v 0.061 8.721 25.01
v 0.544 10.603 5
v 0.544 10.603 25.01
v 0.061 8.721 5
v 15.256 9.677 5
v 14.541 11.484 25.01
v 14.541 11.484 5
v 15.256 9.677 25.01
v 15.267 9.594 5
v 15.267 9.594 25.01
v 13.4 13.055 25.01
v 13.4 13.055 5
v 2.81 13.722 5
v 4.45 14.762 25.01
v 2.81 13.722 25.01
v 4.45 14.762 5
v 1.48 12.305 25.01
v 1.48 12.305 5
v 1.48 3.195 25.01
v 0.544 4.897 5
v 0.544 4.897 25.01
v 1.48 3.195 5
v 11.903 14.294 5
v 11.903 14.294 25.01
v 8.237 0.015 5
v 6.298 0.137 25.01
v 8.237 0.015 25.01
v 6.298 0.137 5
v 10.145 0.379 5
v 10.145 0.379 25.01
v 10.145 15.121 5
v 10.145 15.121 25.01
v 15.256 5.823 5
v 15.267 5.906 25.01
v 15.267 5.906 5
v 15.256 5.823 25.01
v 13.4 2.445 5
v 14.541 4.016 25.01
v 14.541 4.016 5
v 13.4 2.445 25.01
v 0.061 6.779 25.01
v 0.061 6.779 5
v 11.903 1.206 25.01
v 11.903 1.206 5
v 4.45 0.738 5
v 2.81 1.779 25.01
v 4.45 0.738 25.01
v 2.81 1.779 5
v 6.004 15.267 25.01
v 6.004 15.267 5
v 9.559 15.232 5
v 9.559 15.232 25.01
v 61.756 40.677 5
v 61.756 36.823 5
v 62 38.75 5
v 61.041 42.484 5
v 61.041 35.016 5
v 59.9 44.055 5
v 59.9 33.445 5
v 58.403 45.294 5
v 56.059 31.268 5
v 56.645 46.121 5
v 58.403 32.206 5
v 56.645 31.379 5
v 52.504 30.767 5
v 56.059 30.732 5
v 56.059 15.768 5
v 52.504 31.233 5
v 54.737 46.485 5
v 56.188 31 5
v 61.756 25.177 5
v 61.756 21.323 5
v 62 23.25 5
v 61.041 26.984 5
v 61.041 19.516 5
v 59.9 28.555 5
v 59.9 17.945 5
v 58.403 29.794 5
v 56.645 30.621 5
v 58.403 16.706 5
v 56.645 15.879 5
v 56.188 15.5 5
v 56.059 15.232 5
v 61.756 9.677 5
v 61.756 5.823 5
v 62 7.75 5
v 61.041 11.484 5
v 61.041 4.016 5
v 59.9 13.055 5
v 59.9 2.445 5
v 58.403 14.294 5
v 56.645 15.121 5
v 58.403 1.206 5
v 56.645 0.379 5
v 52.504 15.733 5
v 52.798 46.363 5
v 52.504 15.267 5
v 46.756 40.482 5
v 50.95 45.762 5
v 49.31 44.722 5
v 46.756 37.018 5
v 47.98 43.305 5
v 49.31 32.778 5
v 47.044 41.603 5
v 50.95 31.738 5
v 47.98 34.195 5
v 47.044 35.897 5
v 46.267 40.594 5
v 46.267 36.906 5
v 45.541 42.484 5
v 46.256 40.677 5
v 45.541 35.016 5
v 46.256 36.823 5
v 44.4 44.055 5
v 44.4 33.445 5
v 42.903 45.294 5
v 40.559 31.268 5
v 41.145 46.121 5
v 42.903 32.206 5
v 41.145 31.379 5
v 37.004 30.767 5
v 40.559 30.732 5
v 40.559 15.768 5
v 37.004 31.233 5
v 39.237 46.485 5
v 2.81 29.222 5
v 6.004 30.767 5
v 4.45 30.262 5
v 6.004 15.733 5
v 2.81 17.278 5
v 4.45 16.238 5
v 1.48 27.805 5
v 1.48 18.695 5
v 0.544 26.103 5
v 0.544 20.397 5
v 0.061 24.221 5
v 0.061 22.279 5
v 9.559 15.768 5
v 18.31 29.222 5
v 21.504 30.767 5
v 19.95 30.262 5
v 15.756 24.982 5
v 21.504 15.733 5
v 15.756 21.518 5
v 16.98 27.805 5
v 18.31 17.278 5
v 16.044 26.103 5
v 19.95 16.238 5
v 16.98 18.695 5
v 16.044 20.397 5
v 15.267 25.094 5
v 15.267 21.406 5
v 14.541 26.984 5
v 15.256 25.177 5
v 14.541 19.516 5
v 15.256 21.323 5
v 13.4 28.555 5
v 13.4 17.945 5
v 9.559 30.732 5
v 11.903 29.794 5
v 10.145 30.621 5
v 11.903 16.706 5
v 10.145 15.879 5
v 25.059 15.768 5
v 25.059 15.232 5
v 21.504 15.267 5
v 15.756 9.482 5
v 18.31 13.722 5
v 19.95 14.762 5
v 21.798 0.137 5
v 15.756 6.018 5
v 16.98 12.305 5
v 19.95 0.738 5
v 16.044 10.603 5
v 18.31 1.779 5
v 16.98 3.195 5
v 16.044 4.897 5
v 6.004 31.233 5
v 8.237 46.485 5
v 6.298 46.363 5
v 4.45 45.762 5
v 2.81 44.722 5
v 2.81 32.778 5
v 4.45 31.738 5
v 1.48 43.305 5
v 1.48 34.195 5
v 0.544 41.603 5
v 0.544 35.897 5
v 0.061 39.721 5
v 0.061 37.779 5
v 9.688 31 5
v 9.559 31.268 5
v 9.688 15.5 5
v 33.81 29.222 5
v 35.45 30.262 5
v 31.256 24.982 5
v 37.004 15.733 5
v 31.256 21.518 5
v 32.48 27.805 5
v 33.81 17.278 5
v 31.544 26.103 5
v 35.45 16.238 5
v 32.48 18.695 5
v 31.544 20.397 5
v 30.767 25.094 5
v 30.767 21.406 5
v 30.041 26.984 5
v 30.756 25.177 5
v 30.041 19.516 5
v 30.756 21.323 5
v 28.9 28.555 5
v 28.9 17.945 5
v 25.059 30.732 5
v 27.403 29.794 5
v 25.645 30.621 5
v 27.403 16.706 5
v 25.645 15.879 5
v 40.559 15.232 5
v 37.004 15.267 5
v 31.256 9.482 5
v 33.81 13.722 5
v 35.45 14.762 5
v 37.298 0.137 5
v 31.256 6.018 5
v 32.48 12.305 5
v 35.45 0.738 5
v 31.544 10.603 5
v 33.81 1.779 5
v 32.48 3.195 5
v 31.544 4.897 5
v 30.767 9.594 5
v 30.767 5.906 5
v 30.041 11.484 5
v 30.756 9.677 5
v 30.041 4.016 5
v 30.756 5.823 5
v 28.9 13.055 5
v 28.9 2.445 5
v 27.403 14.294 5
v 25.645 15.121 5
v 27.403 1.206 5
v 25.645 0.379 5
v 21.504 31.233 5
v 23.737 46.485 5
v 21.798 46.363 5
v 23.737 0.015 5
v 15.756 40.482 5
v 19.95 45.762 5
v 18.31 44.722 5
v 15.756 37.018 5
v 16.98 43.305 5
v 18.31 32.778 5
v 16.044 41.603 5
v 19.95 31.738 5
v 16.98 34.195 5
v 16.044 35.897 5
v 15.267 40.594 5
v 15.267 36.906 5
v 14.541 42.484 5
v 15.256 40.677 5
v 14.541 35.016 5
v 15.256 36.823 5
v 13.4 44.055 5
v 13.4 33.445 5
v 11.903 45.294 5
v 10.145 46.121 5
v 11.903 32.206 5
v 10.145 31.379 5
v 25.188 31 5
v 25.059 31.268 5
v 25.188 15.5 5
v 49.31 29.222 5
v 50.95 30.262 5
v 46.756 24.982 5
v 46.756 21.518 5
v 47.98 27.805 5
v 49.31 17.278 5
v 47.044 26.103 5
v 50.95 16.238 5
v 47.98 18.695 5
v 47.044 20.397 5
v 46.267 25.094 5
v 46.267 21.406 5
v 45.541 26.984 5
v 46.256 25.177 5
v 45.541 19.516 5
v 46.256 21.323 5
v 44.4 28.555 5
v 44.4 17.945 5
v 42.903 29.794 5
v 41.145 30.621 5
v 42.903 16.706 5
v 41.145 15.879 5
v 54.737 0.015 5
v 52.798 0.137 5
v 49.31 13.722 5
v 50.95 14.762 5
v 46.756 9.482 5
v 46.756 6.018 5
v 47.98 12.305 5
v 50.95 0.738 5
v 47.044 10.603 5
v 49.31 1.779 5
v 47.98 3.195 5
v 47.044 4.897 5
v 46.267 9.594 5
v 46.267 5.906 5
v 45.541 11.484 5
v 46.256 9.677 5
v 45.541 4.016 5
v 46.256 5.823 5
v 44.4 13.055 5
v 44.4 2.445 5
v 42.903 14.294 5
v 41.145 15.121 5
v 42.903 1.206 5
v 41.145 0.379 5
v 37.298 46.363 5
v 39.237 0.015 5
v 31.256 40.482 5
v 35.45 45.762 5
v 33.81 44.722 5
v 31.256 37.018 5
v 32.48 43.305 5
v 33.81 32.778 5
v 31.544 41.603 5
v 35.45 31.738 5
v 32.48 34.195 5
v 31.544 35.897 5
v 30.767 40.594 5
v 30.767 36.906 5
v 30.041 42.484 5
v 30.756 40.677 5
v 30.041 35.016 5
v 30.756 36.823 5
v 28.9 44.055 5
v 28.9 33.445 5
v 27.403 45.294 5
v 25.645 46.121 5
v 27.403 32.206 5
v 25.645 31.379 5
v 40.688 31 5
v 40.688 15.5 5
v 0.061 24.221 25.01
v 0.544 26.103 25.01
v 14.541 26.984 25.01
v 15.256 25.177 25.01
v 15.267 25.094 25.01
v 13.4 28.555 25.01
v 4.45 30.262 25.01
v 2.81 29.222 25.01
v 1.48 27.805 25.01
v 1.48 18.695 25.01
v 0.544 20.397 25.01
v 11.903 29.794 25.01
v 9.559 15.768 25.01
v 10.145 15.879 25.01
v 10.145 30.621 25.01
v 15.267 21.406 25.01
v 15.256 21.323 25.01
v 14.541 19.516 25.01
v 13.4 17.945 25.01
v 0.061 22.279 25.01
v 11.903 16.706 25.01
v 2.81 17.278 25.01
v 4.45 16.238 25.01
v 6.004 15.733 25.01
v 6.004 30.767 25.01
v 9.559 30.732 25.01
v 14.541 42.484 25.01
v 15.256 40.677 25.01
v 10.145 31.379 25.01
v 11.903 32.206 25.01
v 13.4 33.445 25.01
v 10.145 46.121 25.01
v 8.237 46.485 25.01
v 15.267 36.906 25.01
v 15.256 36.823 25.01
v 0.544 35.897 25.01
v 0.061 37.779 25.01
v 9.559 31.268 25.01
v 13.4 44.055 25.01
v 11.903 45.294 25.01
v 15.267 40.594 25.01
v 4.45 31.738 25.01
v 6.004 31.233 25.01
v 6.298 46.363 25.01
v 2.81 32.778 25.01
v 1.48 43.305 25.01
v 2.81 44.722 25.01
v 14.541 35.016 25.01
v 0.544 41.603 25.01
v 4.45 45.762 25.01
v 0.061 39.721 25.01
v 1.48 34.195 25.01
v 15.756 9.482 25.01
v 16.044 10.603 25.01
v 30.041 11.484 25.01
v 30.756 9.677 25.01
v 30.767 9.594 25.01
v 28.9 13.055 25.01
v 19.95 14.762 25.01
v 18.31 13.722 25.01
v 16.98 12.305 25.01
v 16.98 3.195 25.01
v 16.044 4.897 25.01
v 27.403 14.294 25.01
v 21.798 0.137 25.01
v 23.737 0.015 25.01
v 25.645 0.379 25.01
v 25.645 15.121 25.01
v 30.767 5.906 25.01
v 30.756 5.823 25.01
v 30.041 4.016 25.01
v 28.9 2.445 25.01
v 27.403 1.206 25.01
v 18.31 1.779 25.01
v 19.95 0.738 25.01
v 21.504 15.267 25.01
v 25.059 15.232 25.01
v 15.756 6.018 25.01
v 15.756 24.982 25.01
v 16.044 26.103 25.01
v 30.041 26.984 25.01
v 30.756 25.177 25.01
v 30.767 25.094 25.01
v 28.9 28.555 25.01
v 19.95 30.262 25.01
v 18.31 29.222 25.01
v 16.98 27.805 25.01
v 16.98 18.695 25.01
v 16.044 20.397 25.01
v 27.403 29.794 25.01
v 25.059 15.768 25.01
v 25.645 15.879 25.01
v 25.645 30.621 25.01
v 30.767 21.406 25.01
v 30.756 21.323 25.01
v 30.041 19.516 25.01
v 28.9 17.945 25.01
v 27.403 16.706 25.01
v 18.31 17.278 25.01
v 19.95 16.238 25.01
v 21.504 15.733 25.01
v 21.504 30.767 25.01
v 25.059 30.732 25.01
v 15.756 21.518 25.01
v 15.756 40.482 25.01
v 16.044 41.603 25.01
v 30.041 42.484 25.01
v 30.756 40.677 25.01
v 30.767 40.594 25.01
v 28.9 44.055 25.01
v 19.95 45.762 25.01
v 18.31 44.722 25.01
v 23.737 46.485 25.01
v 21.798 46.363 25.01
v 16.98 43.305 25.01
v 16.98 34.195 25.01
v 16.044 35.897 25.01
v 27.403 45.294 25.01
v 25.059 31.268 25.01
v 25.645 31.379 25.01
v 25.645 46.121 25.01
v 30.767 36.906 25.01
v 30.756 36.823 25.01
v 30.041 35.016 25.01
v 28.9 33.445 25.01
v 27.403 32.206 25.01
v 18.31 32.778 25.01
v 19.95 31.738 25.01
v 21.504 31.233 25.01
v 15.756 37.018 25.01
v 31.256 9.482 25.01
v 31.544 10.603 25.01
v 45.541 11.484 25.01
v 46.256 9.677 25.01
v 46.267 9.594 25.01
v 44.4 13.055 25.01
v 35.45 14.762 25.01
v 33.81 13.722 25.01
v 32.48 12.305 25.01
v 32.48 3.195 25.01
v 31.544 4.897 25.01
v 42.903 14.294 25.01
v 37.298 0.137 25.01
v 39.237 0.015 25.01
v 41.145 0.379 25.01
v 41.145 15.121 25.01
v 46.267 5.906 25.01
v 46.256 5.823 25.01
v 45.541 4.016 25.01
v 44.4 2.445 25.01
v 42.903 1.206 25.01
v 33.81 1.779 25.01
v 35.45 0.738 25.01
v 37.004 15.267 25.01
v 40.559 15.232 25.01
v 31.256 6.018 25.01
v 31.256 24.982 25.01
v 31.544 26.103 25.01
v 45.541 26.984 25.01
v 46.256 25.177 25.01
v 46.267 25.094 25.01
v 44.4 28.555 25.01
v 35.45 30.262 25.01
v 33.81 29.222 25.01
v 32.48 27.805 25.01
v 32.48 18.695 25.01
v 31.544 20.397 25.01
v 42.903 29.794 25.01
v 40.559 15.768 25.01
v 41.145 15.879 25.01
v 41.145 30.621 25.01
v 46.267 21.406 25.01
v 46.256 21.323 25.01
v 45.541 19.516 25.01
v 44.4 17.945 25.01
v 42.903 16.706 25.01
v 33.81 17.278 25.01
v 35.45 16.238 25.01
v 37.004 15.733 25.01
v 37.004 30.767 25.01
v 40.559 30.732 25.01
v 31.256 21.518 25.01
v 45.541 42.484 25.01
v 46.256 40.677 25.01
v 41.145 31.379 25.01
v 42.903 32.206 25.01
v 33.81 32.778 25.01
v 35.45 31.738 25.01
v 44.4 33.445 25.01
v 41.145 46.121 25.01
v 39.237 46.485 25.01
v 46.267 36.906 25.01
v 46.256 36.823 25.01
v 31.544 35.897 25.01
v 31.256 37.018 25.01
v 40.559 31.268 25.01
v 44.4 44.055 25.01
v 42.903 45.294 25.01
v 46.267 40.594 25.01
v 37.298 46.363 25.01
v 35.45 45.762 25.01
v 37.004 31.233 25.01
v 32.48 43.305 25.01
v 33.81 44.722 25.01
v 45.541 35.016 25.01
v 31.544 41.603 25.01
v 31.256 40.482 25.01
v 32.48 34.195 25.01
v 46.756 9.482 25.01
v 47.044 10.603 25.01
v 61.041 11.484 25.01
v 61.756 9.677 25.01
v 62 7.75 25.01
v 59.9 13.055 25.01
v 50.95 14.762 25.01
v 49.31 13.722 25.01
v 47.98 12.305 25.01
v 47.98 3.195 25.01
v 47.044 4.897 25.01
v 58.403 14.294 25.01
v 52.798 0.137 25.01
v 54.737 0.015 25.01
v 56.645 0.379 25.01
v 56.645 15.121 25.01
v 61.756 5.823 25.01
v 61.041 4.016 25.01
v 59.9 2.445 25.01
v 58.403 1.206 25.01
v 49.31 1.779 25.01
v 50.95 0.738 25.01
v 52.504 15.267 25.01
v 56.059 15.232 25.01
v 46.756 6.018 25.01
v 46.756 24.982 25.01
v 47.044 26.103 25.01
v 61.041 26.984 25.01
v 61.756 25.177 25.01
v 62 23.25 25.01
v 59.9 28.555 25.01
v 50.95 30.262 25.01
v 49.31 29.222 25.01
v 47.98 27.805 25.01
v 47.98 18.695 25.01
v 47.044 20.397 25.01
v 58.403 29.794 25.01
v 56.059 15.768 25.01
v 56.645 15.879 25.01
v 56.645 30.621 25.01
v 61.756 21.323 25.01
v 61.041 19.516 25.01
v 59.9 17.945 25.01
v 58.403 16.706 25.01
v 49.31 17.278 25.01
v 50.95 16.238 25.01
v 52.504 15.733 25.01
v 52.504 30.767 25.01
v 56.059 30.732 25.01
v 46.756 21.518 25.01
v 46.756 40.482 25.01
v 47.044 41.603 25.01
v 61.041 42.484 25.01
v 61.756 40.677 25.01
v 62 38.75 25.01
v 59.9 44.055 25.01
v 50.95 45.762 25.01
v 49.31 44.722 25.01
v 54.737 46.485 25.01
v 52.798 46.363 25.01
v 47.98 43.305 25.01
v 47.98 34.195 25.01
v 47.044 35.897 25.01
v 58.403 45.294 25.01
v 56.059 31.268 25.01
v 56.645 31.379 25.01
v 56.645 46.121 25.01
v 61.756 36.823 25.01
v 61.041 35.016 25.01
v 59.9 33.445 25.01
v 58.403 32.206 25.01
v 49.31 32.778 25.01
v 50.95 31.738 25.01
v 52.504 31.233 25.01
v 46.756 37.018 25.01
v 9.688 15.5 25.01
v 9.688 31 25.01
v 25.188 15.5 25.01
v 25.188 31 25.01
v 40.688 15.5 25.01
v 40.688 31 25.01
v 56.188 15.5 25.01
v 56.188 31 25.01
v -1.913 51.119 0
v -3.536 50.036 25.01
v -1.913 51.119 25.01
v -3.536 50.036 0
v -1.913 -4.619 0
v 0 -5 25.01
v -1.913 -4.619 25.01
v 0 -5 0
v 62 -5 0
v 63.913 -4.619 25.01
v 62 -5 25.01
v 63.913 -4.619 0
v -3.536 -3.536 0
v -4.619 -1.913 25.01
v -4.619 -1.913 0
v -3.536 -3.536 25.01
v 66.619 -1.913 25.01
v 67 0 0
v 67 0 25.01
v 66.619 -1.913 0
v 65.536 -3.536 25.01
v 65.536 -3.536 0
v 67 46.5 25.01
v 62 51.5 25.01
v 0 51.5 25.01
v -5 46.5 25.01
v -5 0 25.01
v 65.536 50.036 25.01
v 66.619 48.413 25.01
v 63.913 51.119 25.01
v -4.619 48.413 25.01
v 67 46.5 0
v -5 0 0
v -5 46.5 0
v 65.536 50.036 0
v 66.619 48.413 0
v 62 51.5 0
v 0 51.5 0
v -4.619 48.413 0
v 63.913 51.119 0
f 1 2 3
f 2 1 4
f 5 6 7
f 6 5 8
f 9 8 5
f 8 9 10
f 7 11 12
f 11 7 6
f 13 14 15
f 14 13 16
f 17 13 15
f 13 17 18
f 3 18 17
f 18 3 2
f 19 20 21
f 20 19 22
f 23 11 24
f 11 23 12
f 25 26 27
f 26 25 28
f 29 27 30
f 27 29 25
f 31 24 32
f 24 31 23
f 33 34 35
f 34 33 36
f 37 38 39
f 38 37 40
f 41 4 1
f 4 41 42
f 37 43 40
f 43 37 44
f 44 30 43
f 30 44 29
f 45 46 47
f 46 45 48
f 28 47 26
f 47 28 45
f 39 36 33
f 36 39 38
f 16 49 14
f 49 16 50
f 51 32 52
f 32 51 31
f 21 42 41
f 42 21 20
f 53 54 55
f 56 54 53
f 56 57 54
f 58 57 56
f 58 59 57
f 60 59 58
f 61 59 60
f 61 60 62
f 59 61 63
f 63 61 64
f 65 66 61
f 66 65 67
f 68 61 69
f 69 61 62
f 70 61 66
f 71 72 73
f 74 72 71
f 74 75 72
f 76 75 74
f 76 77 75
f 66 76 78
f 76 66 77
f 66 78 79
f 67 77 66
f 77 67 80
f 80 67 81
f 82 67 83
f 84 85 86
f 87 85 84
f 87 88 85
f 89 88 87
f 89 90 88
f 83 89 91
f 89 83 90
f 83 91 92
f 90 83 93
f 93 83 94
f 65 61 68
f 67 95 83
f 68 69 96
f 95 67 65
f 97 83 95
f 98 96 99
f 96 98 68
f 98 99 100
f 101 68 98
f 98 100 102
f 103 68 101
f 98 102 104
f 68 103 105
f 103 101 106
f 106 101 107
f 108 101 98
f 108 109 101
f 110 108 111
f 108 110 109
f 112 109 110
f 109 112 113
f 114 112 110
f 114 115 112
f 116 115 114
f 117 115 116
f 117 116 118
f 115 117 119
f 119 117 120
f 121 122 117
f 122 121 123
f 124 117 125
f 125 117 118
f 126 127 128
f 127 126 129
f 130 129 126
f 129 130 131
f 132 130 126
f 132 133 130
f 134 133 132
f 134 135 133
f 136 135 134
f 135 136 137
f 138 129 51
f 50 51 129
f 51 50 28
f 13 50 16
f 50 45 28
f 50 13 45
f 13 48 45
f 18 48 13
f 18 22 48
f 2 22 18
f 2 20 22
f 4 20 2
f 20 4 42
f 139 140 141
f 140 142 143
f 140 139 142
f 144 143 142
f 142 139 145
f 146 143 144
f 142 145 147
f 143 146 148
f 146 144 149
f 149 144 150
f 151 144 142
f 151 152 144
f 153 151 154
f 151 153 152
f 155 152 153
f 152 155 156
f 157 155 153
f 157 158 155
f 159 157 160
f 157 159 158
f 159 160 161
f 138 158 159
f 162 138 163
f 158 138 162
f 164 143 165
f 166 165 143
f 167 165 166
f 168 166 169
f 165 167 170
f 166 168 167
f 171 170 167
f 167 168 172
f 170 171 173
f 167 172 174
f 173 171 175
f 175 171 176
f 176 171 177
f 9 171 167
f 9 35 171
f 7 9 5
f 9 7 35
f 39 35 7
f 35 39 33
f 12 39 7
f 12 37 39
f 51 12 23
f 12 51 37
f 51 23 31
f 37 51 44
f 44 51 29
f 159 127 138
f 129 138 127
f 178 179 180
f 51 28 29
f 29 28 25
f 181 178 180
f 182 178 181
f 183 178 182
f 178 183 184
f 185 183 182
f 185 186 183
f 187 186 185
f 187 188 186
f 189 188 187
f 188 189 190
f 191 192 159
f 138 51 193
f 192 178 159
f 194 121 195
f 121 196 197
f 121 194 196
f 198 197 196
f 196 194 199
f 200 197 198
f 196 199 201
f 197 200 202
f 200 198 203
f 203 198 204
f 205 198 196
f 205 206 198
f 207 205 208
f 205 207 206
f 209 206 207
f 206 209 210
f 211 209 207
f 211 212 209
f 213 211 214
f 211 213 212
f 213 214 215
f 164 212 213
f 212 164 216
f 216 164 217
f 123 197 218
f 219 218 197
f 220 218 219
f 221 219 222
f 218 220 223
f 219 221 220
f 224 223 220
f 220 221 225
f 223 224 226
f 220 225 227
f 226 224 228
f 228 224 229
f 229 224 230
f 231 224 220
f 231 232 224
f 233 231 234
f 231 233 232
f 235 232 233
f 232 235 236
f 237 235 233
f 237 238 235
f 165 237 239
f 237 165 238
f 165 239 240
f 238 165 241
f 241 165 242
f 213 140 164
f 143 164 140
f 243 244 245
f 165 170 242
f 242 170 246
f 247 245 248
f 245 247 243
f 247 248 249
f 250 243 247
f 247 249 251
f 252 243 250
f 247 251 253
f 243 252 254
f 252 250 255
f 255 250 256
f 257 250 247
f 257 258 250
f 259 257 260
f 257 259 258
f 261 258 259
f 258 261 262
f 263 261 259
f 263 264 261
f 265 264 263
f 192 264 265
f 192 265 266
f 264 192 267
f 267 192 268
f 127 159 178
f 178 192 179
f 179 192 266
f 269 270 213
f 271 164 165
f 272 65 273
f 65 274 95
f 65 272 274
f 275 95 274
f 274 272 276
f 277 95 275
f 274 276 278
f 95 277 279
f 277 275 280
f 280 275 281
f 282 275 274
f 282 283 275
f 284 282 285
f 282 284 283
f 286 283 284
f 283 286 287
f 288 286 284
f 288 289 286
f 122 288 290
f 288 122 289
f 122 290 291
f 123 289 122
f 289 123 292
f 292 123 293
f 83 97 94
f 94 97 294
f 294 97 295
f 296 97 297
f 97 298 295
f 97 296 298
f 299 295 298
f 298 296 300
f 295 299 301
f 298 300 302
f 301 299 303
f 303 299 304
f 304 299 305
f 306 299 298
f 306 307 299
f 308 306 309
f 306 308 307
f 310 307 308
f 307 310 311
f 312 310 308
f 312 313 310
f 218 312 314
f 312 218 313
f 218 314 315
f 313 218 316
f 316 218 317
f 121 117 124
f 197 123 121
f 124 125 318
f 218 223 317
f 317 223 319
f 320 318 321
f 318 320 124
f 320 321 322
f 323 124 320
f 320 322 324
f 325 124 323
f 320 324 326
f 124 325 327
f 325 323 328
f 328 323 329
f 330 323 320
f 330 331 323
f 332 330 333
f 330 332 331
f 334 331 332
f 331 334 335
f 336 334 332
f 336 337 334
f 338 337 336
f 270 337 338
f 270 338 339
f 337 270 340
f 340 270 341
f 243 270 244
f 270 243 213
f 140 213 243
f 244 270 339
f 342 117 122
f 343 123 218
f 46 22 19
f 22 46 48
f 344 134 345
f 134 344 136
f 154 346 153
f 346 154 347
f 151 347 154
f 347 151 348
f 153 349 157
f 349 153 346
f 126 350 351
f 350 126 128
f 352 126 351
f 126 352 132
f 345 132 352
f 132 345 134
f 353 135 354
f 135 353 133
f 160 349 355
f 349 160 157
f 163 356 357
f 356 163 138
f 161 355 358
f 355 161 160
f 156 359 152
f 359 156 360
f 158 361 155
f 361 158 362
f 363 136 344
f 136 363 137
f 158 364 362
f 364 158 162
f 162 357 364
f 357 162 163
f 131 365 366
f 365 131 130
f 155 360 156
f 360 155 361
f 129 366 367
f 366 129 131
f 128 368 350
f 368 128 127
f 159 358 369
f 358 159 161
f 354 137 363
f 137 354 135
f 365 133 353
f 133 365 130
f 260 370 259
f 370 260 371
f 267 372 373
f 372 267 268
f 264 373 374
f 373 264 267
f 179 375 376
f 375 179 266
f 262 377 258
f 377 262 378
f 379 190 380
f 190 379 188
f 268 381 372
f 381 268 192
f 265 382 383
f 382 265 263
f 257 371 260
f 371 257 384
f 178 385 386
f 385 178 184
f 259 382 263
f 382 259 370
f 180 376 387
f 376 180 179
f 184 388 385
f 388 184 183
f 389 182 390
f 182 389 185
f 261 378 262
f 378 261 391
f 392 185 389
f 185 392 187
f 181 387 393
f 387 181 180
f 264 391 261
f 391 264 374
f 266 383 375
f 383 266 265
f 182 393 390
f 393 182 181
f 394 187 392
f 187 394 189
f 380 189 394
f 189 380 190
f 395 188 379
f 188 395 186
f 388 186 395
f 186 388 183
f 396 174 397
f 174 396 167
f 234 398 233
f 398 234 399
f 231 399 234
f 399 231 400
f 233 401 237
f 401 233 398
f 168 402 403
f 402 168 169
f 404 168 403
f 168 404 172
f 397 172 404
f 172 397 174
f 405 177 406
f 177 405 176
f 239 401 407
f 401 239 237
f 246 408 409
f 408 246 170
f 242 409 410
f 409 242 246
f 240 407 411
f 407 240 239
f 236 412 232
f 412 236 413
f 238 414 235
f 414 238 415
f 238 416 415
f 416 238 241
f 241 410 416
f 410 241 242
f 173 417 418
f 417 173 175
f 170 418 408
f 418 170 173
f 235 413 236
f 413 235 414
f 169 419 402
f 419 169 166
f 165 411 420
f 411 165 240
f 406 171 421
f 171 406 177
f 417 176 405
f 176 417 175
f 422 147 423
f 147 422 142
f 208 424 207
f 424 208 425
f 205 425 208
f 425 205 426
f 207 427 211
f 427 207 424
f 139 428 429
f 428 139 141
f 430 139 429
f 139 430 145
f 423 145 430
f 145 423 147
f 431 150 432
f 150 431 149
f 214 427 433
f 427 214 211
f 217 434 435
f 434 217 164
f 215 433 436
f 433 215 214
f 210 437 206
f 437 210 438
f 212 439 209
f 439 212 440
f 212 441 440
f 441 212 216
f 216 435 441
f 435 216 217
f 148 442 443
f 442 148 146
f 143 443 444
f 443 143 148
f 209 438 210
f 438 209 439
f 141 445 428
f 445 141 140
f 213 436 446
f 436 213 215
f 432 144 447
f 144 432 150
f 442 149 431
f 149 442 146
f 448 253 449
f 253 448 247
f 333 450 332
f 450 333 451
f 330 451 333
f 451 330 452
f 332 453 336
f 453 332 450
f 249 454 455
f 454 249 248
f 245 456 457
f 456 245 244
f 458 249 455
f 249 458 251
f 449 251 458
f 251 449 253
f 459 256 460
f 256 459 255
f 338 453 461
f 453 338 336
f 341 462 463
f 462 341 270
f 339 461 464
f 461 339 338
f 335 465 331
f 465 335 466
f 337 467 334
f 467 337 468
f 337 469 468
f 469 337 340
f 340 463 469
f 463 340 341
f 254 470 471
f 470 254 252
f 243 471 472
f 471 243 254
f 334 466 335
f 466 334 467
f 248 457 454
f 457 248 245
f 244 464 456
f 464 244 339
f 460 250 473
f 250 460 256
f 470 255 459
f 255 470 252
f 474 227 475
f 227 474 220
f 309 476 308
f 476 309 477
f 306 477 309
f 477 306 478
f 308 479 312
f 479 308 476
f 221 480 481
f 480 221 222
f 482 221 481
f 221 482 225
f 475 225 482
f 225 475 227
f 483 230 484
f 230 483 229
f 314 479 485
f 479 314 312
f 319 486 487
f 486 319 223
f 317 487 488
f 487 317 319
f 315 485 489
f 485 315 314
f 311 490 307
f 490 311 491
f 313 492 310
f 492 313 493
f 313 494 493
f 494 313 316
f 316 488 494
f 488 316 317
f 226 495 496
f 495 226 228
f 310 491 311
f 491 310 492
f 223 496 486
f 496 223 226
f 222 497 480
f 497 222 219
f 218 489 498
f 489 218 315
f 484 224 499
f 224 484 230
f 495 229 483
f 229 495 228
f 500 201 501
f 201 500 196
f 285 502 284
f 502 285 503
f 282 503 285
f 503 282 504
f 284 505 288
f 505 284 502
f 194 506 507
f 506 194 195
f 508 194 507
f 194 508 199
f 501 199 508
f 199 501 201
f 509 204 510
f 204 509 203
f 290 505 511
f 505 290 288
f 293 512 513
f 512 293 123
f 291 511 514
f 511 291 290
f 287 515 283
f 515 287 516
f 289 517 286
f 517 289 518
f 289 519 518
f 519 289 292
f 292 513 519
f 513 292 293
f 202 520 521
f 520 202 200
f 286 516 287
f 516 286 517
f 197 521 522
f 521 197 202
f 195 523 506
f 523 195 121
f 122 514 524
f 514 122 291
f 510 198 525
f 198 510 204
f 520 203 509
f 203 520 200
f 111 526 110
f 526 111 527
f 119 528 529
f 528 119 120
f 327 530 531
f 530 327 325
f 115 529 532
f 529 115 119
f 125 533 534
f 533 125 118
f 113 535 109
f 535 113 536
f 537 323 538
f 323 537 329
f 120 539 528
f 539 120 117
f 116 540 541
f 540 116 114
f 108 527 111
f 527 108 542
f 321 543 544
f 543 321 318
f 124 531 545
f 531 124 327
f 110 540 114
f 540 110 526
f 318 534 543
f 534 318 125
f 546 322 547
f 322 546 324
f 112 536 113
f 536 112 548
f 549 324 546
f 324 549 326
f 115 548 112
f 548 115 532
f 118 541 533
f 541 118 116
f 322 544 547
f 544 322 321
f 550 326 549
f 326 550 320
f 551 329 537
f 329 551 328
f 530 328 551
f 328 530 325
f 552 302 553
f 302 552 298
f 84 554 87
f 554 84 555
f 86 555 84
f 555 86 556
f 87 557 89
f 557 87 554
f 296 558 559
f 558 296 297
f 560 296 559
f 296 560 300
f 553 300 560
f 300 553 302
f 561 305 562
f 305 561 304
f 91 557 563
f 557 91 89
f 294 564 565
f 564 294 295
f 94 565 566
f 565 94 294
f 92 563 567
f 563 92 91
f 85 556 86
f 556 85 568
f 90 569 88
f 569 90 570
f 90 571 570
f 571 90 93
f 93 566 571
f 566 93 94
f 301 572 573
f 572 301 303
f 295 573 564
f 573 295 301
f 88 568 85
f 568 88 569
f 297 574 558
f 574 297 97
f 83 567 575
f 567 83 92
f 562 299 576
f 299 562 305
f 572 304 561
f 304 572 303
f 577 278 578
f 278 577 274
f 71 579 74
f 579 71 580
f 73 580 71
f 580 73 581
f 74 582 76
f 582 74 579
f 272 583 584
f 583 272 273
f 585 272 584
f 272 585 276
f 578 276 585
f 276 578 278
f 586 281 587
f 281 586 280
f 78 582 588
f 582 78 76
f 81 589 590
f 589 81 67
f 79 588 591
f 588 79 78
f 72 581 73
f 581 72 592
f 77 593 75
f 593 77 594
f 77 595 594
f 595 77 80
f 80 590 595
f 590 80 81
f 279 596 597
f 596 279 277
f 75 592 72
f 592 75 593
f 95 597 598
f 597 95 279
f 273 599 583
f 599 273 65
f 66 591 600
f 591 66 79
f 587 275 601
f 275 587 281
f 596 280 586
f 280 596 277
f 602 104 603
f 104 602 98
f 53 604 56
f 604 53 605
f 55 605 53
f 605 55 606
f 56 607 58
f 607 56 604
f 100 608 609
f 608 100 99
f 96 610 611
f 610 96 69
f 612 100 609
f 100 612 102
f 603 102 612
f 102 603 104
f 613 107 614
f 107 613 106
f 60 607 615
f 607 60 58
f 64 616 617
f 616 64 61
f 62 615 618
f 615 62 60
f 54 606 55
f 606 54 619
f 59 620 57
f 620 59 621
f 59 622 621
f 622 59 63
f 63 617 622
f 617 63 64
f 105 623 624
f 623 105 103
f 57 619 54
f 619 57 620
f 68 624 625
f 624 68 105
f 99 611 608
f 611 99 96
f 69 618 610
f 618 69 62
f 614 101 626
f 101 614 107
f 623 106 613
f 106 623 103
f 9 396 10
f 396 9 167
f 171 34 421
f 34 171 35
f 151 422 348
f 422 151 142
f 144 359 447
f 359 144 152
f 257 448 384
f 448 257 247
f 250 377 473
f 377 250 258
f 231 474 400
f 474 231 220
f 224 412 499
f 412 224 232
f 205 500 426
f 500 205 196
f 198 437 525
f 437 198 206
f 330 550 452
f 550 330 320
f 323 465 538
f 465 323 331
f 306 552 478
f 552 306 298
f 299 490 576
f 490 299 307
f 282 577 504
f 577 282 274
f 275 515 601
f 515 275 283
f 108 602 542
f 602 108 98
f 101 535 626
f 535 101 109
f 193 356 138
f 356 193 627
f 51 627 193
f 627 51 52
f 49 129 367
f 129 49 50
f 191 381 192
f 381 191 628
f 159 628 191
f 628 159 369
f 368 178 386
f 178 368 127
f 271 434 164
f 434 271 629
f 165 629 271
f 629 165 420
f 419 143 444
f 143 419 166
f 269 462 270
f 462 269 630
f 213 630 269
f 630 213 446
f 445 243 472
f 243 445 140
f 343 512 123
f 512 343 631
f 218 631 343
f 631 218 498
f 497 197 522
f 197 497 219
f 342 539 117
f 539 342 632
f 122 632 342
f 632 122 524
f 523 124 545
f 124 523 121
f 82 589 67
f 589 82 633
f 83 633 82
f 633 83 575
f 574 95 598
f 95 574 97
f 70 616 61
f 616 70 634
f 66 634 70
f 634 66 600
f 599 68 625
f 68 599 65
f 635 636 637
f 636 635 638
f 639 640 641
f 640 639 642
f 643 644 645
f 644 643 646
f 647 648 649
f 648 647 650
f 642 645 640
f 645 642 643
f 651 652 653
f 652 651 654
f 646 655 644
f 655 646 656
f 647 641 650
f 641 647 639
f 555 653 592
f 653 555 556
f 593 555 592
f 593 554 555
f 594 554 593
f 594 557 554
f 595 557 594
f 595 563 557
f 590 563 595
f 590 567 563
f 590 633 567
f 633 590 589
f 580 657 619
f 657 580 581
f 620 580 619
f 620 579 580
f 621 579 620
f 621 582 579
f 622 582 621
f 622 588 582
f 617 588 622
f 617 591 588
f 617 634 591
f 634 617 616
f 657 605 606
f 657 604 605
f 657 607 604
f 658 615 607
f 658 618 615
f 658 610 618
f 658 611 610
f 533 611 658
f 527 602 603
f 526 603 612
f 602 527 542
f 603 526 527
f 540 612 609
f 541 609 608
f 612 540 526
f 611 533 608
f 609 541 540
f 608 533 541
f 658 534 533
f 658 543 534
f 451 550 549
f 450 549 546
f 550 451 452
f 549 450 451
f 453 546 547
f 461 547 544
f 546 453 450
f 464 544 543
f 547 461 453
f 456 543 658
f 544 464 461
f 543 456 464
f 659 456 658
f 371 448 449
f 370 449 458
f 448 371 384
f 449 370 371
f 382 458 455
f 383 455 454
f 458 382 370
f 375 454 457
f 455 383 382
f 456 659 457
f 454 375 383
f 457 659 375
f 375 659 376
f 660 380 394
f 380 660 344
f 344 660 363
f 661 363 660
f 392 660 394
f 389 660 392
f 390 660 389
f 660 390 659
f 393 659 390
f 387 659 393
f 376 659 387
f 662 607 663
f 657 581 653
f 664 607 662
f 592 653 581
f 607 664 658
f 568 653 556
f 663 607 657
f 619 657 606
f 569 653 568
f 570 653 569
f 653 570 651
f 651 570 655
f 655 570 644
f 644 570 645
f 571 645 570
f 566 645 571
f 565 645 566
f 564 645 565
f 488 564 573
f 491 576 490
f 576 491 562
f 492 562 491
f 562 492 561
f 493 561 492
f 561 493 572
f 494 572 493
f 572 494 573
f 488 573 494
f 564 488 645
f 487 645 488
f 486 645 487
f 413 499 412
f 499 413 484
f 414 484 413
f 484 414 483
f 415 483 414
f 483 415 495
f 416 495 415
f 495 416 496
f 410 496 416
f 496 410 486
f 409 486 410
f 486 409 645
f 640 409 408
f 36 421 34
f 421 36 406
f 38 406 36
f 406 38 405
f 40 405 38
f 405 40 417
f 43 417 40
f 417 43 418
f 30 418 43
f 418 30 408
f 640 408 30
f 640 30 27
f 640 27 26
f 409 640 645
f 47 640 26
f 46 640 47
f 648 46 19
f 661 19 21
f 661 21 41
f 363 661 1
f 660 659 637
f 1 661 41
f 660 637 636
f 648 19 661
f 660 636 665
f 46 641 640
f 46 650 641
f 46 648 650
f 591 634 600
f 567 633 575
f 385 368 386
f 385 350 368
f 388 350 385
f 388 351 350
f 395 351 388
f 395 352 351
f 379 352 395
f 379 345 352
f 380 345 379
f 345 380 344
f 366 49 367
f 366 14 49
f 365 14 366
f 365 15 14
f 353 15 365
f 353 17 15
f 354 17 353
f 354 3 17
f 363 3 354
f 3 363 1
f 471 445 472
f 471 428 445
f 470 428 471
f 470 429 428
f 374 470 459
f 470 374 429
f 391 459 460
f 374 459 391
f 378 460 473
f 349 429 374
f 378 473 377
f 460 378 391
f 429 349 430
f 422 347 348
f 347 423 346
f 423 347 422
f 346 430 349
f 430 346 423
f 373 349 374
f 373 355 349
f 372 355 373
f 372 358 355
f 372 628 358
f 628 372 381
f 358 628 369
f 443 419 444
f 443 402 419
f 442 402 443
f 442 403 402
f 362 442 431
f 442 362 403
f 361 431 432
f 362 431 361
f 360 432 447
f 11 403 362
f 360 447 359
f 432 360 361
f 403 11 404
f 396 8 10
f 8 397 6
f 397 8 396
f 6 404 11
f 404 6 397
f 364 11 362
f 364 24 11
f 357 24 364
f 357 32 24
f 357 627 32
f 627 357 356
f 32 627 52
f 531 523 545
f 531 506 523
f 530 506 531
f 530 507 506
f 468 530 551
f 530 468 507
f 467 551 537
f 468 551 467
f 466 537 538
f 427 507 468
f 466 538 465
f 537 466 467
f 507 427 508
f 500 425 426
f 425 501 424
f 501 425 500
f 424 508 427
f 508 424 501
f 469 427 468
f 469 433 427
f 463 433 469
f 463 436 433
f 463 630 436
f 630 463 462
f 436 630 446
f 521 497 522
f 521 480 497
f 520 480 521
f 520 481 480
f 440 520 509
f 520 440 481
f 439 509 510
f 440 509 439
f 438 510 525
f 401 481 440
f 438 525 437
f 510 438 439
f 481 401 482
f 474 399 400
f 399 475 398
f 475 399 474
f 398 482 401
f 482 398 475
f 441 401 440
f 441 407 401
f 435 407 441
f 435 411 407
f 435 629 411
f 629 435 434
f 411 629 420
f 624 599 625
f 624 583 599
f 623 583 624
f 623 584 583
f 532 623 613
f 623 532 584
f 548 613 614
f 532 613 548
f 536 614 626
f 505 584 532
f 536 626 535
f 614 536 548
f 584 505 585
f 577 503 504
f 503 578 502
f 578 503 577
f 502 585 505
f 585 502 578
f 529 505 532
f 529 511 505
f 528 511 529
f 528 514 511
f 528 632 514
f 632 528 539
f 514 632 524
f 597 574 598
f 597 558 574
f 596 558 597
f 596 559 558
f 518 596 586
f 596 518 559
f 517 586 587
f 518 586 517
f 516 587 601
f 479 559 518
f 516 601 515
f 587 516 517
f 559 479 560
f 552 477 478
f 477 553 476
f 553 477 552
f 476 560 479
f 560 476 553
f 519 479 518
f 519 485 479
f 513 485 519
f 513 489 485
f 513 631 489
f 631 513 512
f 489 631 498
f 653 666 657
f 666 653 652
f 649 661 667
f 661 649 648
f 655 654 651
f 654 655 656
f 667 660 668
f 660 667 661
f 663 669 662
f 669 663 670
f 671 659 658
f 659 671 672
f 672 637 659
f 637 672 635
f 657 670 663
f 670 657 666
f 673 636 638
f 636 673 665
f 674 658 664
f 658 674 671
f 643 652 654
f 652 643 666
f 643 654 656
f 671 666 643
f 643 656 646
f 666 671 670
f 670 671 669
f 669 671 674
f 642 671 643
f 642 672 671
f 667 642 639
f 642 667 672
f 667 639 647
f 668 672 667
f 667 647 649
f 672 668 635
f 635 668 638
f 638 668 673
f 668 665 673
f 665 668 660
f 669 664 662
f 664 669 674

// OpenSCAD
/*
 * Customizable Battery Storage Tray
 * Copyright (c) 2013-2019 Anar Software LLC. < http://anars.com >
 *
 * This program is free software: you can redistribute it and/or modify it under
 * the terms of the GNU General Public License as published by the Free Software
 * Foundation, either version 3 of the License, or (at your option) any later
 * version.
 *
 * This program is distributed in the hope that it will be useful, but WITHOUT
 * ANY WARRANTY; without even the implied warranty of MERCHANTABILITY or FITNESS
 * FOR A PARTICULAR PURPOSE. See the GNU General Public License for more details.
 *
 * You should have received a copy of the GNU General Public License along with
 * this program. If not, see < http://www.gnu.org/licenses/ >
 *
 */

/* [Global] */

/* [Tray Settings] */
// Battery Type
battery_type = "AA"; // [AAA, AA, C, D, 1/2AA, AAAA, A, B, F, N, NO. 6, SUB-C, A23, A27, DUPLEX, 4SR44, 523, 531, CR123A, CR2]

// Depth of a battery hole (mm)
depth_of_hole = 20;

// Thickness of the bottom (mm)
thickness_of_bottom = 5;

// Number of batteries in a row
number_of_rows = 3;

// Number of batteries in a column
number_of_column = 4;

// Thickness of the edges (mm)
thickness_of_edges = 5;

// Enlarge battery hole by (mm)
hole_enlargement_amount = 1;

/* [Facets Settings] */
// Minimum angle for a fragment
$fa = 12;
// Minimum size of a fragment
$fs = 2;
// Number of fragments
$fn = 0;

/* [Hidden] */
batteries =
[
	["AAA", 10.5],
	["AA", 14.5],
	["C", 26.2],
	["D", 34.2],
	["1/2AA", 14.5],
	["AAAA", 8.3],
	["A", 17],
	["B", 21.5],
	["F", 33],
	["N", 12],
	["NO. 6", 67],
	["SUB-C", 22.2],
	["A23", 10.3],
	["A27", 8],
	["DUPLEX", 21.8],
	["4SR44", 13],
	["523", 17.1],
	["531", 17.1],
	["CR123A", 17],
	["CR2", 15.6]
];

battery_diameter = batteries[search([battery_type], batteries)[0]][1] + hole_enlargement_amount;

difference()
{
	minkowski()
	{
		cube([number_of_column * battery_diameter, number_of_rows * battery_diameter, depth_of_hole + thickness_of_bottom]);
		cylinder(r = thickness_of_edges, h = 0.01);
	}

	for ( x = [0 : number_of_column - 1] )
		for ( y = [0 : number_of_rows - 1] )
			translate([x * battery_diameter + battery_diameter / 2, y * battery_diameter + battery_diameter / 2, thickness_of_bottom])
				cylinder(r = battery_diameter / 2, depth_of_hole + 1);

	if (number_of_column > 1)
		for ( x = [0 : number_of_column - 2] )
			for ( y = [0 : number_of_rows - 1] )
				translate([x * battery_diameter + battery_diameter, y * battery_diameter + battery_diameter / 2, thickness_of_bottom])
					cylinder(r = battery_diameter / 8, depth_of_hole + 1);

	if (number_of_rows > 1)
		for ( x = [0 : number_of_column - 1] )
			for ( y = [0 : number_of_rows - 2] )
				translate([x * battery_diameter + battery_diameter / 2, y * battery_diameter + battery_diameter, thickness_of_bottom])
					cylinder(r = battery_diameter / 8, depth_of_hole + 1);
}
